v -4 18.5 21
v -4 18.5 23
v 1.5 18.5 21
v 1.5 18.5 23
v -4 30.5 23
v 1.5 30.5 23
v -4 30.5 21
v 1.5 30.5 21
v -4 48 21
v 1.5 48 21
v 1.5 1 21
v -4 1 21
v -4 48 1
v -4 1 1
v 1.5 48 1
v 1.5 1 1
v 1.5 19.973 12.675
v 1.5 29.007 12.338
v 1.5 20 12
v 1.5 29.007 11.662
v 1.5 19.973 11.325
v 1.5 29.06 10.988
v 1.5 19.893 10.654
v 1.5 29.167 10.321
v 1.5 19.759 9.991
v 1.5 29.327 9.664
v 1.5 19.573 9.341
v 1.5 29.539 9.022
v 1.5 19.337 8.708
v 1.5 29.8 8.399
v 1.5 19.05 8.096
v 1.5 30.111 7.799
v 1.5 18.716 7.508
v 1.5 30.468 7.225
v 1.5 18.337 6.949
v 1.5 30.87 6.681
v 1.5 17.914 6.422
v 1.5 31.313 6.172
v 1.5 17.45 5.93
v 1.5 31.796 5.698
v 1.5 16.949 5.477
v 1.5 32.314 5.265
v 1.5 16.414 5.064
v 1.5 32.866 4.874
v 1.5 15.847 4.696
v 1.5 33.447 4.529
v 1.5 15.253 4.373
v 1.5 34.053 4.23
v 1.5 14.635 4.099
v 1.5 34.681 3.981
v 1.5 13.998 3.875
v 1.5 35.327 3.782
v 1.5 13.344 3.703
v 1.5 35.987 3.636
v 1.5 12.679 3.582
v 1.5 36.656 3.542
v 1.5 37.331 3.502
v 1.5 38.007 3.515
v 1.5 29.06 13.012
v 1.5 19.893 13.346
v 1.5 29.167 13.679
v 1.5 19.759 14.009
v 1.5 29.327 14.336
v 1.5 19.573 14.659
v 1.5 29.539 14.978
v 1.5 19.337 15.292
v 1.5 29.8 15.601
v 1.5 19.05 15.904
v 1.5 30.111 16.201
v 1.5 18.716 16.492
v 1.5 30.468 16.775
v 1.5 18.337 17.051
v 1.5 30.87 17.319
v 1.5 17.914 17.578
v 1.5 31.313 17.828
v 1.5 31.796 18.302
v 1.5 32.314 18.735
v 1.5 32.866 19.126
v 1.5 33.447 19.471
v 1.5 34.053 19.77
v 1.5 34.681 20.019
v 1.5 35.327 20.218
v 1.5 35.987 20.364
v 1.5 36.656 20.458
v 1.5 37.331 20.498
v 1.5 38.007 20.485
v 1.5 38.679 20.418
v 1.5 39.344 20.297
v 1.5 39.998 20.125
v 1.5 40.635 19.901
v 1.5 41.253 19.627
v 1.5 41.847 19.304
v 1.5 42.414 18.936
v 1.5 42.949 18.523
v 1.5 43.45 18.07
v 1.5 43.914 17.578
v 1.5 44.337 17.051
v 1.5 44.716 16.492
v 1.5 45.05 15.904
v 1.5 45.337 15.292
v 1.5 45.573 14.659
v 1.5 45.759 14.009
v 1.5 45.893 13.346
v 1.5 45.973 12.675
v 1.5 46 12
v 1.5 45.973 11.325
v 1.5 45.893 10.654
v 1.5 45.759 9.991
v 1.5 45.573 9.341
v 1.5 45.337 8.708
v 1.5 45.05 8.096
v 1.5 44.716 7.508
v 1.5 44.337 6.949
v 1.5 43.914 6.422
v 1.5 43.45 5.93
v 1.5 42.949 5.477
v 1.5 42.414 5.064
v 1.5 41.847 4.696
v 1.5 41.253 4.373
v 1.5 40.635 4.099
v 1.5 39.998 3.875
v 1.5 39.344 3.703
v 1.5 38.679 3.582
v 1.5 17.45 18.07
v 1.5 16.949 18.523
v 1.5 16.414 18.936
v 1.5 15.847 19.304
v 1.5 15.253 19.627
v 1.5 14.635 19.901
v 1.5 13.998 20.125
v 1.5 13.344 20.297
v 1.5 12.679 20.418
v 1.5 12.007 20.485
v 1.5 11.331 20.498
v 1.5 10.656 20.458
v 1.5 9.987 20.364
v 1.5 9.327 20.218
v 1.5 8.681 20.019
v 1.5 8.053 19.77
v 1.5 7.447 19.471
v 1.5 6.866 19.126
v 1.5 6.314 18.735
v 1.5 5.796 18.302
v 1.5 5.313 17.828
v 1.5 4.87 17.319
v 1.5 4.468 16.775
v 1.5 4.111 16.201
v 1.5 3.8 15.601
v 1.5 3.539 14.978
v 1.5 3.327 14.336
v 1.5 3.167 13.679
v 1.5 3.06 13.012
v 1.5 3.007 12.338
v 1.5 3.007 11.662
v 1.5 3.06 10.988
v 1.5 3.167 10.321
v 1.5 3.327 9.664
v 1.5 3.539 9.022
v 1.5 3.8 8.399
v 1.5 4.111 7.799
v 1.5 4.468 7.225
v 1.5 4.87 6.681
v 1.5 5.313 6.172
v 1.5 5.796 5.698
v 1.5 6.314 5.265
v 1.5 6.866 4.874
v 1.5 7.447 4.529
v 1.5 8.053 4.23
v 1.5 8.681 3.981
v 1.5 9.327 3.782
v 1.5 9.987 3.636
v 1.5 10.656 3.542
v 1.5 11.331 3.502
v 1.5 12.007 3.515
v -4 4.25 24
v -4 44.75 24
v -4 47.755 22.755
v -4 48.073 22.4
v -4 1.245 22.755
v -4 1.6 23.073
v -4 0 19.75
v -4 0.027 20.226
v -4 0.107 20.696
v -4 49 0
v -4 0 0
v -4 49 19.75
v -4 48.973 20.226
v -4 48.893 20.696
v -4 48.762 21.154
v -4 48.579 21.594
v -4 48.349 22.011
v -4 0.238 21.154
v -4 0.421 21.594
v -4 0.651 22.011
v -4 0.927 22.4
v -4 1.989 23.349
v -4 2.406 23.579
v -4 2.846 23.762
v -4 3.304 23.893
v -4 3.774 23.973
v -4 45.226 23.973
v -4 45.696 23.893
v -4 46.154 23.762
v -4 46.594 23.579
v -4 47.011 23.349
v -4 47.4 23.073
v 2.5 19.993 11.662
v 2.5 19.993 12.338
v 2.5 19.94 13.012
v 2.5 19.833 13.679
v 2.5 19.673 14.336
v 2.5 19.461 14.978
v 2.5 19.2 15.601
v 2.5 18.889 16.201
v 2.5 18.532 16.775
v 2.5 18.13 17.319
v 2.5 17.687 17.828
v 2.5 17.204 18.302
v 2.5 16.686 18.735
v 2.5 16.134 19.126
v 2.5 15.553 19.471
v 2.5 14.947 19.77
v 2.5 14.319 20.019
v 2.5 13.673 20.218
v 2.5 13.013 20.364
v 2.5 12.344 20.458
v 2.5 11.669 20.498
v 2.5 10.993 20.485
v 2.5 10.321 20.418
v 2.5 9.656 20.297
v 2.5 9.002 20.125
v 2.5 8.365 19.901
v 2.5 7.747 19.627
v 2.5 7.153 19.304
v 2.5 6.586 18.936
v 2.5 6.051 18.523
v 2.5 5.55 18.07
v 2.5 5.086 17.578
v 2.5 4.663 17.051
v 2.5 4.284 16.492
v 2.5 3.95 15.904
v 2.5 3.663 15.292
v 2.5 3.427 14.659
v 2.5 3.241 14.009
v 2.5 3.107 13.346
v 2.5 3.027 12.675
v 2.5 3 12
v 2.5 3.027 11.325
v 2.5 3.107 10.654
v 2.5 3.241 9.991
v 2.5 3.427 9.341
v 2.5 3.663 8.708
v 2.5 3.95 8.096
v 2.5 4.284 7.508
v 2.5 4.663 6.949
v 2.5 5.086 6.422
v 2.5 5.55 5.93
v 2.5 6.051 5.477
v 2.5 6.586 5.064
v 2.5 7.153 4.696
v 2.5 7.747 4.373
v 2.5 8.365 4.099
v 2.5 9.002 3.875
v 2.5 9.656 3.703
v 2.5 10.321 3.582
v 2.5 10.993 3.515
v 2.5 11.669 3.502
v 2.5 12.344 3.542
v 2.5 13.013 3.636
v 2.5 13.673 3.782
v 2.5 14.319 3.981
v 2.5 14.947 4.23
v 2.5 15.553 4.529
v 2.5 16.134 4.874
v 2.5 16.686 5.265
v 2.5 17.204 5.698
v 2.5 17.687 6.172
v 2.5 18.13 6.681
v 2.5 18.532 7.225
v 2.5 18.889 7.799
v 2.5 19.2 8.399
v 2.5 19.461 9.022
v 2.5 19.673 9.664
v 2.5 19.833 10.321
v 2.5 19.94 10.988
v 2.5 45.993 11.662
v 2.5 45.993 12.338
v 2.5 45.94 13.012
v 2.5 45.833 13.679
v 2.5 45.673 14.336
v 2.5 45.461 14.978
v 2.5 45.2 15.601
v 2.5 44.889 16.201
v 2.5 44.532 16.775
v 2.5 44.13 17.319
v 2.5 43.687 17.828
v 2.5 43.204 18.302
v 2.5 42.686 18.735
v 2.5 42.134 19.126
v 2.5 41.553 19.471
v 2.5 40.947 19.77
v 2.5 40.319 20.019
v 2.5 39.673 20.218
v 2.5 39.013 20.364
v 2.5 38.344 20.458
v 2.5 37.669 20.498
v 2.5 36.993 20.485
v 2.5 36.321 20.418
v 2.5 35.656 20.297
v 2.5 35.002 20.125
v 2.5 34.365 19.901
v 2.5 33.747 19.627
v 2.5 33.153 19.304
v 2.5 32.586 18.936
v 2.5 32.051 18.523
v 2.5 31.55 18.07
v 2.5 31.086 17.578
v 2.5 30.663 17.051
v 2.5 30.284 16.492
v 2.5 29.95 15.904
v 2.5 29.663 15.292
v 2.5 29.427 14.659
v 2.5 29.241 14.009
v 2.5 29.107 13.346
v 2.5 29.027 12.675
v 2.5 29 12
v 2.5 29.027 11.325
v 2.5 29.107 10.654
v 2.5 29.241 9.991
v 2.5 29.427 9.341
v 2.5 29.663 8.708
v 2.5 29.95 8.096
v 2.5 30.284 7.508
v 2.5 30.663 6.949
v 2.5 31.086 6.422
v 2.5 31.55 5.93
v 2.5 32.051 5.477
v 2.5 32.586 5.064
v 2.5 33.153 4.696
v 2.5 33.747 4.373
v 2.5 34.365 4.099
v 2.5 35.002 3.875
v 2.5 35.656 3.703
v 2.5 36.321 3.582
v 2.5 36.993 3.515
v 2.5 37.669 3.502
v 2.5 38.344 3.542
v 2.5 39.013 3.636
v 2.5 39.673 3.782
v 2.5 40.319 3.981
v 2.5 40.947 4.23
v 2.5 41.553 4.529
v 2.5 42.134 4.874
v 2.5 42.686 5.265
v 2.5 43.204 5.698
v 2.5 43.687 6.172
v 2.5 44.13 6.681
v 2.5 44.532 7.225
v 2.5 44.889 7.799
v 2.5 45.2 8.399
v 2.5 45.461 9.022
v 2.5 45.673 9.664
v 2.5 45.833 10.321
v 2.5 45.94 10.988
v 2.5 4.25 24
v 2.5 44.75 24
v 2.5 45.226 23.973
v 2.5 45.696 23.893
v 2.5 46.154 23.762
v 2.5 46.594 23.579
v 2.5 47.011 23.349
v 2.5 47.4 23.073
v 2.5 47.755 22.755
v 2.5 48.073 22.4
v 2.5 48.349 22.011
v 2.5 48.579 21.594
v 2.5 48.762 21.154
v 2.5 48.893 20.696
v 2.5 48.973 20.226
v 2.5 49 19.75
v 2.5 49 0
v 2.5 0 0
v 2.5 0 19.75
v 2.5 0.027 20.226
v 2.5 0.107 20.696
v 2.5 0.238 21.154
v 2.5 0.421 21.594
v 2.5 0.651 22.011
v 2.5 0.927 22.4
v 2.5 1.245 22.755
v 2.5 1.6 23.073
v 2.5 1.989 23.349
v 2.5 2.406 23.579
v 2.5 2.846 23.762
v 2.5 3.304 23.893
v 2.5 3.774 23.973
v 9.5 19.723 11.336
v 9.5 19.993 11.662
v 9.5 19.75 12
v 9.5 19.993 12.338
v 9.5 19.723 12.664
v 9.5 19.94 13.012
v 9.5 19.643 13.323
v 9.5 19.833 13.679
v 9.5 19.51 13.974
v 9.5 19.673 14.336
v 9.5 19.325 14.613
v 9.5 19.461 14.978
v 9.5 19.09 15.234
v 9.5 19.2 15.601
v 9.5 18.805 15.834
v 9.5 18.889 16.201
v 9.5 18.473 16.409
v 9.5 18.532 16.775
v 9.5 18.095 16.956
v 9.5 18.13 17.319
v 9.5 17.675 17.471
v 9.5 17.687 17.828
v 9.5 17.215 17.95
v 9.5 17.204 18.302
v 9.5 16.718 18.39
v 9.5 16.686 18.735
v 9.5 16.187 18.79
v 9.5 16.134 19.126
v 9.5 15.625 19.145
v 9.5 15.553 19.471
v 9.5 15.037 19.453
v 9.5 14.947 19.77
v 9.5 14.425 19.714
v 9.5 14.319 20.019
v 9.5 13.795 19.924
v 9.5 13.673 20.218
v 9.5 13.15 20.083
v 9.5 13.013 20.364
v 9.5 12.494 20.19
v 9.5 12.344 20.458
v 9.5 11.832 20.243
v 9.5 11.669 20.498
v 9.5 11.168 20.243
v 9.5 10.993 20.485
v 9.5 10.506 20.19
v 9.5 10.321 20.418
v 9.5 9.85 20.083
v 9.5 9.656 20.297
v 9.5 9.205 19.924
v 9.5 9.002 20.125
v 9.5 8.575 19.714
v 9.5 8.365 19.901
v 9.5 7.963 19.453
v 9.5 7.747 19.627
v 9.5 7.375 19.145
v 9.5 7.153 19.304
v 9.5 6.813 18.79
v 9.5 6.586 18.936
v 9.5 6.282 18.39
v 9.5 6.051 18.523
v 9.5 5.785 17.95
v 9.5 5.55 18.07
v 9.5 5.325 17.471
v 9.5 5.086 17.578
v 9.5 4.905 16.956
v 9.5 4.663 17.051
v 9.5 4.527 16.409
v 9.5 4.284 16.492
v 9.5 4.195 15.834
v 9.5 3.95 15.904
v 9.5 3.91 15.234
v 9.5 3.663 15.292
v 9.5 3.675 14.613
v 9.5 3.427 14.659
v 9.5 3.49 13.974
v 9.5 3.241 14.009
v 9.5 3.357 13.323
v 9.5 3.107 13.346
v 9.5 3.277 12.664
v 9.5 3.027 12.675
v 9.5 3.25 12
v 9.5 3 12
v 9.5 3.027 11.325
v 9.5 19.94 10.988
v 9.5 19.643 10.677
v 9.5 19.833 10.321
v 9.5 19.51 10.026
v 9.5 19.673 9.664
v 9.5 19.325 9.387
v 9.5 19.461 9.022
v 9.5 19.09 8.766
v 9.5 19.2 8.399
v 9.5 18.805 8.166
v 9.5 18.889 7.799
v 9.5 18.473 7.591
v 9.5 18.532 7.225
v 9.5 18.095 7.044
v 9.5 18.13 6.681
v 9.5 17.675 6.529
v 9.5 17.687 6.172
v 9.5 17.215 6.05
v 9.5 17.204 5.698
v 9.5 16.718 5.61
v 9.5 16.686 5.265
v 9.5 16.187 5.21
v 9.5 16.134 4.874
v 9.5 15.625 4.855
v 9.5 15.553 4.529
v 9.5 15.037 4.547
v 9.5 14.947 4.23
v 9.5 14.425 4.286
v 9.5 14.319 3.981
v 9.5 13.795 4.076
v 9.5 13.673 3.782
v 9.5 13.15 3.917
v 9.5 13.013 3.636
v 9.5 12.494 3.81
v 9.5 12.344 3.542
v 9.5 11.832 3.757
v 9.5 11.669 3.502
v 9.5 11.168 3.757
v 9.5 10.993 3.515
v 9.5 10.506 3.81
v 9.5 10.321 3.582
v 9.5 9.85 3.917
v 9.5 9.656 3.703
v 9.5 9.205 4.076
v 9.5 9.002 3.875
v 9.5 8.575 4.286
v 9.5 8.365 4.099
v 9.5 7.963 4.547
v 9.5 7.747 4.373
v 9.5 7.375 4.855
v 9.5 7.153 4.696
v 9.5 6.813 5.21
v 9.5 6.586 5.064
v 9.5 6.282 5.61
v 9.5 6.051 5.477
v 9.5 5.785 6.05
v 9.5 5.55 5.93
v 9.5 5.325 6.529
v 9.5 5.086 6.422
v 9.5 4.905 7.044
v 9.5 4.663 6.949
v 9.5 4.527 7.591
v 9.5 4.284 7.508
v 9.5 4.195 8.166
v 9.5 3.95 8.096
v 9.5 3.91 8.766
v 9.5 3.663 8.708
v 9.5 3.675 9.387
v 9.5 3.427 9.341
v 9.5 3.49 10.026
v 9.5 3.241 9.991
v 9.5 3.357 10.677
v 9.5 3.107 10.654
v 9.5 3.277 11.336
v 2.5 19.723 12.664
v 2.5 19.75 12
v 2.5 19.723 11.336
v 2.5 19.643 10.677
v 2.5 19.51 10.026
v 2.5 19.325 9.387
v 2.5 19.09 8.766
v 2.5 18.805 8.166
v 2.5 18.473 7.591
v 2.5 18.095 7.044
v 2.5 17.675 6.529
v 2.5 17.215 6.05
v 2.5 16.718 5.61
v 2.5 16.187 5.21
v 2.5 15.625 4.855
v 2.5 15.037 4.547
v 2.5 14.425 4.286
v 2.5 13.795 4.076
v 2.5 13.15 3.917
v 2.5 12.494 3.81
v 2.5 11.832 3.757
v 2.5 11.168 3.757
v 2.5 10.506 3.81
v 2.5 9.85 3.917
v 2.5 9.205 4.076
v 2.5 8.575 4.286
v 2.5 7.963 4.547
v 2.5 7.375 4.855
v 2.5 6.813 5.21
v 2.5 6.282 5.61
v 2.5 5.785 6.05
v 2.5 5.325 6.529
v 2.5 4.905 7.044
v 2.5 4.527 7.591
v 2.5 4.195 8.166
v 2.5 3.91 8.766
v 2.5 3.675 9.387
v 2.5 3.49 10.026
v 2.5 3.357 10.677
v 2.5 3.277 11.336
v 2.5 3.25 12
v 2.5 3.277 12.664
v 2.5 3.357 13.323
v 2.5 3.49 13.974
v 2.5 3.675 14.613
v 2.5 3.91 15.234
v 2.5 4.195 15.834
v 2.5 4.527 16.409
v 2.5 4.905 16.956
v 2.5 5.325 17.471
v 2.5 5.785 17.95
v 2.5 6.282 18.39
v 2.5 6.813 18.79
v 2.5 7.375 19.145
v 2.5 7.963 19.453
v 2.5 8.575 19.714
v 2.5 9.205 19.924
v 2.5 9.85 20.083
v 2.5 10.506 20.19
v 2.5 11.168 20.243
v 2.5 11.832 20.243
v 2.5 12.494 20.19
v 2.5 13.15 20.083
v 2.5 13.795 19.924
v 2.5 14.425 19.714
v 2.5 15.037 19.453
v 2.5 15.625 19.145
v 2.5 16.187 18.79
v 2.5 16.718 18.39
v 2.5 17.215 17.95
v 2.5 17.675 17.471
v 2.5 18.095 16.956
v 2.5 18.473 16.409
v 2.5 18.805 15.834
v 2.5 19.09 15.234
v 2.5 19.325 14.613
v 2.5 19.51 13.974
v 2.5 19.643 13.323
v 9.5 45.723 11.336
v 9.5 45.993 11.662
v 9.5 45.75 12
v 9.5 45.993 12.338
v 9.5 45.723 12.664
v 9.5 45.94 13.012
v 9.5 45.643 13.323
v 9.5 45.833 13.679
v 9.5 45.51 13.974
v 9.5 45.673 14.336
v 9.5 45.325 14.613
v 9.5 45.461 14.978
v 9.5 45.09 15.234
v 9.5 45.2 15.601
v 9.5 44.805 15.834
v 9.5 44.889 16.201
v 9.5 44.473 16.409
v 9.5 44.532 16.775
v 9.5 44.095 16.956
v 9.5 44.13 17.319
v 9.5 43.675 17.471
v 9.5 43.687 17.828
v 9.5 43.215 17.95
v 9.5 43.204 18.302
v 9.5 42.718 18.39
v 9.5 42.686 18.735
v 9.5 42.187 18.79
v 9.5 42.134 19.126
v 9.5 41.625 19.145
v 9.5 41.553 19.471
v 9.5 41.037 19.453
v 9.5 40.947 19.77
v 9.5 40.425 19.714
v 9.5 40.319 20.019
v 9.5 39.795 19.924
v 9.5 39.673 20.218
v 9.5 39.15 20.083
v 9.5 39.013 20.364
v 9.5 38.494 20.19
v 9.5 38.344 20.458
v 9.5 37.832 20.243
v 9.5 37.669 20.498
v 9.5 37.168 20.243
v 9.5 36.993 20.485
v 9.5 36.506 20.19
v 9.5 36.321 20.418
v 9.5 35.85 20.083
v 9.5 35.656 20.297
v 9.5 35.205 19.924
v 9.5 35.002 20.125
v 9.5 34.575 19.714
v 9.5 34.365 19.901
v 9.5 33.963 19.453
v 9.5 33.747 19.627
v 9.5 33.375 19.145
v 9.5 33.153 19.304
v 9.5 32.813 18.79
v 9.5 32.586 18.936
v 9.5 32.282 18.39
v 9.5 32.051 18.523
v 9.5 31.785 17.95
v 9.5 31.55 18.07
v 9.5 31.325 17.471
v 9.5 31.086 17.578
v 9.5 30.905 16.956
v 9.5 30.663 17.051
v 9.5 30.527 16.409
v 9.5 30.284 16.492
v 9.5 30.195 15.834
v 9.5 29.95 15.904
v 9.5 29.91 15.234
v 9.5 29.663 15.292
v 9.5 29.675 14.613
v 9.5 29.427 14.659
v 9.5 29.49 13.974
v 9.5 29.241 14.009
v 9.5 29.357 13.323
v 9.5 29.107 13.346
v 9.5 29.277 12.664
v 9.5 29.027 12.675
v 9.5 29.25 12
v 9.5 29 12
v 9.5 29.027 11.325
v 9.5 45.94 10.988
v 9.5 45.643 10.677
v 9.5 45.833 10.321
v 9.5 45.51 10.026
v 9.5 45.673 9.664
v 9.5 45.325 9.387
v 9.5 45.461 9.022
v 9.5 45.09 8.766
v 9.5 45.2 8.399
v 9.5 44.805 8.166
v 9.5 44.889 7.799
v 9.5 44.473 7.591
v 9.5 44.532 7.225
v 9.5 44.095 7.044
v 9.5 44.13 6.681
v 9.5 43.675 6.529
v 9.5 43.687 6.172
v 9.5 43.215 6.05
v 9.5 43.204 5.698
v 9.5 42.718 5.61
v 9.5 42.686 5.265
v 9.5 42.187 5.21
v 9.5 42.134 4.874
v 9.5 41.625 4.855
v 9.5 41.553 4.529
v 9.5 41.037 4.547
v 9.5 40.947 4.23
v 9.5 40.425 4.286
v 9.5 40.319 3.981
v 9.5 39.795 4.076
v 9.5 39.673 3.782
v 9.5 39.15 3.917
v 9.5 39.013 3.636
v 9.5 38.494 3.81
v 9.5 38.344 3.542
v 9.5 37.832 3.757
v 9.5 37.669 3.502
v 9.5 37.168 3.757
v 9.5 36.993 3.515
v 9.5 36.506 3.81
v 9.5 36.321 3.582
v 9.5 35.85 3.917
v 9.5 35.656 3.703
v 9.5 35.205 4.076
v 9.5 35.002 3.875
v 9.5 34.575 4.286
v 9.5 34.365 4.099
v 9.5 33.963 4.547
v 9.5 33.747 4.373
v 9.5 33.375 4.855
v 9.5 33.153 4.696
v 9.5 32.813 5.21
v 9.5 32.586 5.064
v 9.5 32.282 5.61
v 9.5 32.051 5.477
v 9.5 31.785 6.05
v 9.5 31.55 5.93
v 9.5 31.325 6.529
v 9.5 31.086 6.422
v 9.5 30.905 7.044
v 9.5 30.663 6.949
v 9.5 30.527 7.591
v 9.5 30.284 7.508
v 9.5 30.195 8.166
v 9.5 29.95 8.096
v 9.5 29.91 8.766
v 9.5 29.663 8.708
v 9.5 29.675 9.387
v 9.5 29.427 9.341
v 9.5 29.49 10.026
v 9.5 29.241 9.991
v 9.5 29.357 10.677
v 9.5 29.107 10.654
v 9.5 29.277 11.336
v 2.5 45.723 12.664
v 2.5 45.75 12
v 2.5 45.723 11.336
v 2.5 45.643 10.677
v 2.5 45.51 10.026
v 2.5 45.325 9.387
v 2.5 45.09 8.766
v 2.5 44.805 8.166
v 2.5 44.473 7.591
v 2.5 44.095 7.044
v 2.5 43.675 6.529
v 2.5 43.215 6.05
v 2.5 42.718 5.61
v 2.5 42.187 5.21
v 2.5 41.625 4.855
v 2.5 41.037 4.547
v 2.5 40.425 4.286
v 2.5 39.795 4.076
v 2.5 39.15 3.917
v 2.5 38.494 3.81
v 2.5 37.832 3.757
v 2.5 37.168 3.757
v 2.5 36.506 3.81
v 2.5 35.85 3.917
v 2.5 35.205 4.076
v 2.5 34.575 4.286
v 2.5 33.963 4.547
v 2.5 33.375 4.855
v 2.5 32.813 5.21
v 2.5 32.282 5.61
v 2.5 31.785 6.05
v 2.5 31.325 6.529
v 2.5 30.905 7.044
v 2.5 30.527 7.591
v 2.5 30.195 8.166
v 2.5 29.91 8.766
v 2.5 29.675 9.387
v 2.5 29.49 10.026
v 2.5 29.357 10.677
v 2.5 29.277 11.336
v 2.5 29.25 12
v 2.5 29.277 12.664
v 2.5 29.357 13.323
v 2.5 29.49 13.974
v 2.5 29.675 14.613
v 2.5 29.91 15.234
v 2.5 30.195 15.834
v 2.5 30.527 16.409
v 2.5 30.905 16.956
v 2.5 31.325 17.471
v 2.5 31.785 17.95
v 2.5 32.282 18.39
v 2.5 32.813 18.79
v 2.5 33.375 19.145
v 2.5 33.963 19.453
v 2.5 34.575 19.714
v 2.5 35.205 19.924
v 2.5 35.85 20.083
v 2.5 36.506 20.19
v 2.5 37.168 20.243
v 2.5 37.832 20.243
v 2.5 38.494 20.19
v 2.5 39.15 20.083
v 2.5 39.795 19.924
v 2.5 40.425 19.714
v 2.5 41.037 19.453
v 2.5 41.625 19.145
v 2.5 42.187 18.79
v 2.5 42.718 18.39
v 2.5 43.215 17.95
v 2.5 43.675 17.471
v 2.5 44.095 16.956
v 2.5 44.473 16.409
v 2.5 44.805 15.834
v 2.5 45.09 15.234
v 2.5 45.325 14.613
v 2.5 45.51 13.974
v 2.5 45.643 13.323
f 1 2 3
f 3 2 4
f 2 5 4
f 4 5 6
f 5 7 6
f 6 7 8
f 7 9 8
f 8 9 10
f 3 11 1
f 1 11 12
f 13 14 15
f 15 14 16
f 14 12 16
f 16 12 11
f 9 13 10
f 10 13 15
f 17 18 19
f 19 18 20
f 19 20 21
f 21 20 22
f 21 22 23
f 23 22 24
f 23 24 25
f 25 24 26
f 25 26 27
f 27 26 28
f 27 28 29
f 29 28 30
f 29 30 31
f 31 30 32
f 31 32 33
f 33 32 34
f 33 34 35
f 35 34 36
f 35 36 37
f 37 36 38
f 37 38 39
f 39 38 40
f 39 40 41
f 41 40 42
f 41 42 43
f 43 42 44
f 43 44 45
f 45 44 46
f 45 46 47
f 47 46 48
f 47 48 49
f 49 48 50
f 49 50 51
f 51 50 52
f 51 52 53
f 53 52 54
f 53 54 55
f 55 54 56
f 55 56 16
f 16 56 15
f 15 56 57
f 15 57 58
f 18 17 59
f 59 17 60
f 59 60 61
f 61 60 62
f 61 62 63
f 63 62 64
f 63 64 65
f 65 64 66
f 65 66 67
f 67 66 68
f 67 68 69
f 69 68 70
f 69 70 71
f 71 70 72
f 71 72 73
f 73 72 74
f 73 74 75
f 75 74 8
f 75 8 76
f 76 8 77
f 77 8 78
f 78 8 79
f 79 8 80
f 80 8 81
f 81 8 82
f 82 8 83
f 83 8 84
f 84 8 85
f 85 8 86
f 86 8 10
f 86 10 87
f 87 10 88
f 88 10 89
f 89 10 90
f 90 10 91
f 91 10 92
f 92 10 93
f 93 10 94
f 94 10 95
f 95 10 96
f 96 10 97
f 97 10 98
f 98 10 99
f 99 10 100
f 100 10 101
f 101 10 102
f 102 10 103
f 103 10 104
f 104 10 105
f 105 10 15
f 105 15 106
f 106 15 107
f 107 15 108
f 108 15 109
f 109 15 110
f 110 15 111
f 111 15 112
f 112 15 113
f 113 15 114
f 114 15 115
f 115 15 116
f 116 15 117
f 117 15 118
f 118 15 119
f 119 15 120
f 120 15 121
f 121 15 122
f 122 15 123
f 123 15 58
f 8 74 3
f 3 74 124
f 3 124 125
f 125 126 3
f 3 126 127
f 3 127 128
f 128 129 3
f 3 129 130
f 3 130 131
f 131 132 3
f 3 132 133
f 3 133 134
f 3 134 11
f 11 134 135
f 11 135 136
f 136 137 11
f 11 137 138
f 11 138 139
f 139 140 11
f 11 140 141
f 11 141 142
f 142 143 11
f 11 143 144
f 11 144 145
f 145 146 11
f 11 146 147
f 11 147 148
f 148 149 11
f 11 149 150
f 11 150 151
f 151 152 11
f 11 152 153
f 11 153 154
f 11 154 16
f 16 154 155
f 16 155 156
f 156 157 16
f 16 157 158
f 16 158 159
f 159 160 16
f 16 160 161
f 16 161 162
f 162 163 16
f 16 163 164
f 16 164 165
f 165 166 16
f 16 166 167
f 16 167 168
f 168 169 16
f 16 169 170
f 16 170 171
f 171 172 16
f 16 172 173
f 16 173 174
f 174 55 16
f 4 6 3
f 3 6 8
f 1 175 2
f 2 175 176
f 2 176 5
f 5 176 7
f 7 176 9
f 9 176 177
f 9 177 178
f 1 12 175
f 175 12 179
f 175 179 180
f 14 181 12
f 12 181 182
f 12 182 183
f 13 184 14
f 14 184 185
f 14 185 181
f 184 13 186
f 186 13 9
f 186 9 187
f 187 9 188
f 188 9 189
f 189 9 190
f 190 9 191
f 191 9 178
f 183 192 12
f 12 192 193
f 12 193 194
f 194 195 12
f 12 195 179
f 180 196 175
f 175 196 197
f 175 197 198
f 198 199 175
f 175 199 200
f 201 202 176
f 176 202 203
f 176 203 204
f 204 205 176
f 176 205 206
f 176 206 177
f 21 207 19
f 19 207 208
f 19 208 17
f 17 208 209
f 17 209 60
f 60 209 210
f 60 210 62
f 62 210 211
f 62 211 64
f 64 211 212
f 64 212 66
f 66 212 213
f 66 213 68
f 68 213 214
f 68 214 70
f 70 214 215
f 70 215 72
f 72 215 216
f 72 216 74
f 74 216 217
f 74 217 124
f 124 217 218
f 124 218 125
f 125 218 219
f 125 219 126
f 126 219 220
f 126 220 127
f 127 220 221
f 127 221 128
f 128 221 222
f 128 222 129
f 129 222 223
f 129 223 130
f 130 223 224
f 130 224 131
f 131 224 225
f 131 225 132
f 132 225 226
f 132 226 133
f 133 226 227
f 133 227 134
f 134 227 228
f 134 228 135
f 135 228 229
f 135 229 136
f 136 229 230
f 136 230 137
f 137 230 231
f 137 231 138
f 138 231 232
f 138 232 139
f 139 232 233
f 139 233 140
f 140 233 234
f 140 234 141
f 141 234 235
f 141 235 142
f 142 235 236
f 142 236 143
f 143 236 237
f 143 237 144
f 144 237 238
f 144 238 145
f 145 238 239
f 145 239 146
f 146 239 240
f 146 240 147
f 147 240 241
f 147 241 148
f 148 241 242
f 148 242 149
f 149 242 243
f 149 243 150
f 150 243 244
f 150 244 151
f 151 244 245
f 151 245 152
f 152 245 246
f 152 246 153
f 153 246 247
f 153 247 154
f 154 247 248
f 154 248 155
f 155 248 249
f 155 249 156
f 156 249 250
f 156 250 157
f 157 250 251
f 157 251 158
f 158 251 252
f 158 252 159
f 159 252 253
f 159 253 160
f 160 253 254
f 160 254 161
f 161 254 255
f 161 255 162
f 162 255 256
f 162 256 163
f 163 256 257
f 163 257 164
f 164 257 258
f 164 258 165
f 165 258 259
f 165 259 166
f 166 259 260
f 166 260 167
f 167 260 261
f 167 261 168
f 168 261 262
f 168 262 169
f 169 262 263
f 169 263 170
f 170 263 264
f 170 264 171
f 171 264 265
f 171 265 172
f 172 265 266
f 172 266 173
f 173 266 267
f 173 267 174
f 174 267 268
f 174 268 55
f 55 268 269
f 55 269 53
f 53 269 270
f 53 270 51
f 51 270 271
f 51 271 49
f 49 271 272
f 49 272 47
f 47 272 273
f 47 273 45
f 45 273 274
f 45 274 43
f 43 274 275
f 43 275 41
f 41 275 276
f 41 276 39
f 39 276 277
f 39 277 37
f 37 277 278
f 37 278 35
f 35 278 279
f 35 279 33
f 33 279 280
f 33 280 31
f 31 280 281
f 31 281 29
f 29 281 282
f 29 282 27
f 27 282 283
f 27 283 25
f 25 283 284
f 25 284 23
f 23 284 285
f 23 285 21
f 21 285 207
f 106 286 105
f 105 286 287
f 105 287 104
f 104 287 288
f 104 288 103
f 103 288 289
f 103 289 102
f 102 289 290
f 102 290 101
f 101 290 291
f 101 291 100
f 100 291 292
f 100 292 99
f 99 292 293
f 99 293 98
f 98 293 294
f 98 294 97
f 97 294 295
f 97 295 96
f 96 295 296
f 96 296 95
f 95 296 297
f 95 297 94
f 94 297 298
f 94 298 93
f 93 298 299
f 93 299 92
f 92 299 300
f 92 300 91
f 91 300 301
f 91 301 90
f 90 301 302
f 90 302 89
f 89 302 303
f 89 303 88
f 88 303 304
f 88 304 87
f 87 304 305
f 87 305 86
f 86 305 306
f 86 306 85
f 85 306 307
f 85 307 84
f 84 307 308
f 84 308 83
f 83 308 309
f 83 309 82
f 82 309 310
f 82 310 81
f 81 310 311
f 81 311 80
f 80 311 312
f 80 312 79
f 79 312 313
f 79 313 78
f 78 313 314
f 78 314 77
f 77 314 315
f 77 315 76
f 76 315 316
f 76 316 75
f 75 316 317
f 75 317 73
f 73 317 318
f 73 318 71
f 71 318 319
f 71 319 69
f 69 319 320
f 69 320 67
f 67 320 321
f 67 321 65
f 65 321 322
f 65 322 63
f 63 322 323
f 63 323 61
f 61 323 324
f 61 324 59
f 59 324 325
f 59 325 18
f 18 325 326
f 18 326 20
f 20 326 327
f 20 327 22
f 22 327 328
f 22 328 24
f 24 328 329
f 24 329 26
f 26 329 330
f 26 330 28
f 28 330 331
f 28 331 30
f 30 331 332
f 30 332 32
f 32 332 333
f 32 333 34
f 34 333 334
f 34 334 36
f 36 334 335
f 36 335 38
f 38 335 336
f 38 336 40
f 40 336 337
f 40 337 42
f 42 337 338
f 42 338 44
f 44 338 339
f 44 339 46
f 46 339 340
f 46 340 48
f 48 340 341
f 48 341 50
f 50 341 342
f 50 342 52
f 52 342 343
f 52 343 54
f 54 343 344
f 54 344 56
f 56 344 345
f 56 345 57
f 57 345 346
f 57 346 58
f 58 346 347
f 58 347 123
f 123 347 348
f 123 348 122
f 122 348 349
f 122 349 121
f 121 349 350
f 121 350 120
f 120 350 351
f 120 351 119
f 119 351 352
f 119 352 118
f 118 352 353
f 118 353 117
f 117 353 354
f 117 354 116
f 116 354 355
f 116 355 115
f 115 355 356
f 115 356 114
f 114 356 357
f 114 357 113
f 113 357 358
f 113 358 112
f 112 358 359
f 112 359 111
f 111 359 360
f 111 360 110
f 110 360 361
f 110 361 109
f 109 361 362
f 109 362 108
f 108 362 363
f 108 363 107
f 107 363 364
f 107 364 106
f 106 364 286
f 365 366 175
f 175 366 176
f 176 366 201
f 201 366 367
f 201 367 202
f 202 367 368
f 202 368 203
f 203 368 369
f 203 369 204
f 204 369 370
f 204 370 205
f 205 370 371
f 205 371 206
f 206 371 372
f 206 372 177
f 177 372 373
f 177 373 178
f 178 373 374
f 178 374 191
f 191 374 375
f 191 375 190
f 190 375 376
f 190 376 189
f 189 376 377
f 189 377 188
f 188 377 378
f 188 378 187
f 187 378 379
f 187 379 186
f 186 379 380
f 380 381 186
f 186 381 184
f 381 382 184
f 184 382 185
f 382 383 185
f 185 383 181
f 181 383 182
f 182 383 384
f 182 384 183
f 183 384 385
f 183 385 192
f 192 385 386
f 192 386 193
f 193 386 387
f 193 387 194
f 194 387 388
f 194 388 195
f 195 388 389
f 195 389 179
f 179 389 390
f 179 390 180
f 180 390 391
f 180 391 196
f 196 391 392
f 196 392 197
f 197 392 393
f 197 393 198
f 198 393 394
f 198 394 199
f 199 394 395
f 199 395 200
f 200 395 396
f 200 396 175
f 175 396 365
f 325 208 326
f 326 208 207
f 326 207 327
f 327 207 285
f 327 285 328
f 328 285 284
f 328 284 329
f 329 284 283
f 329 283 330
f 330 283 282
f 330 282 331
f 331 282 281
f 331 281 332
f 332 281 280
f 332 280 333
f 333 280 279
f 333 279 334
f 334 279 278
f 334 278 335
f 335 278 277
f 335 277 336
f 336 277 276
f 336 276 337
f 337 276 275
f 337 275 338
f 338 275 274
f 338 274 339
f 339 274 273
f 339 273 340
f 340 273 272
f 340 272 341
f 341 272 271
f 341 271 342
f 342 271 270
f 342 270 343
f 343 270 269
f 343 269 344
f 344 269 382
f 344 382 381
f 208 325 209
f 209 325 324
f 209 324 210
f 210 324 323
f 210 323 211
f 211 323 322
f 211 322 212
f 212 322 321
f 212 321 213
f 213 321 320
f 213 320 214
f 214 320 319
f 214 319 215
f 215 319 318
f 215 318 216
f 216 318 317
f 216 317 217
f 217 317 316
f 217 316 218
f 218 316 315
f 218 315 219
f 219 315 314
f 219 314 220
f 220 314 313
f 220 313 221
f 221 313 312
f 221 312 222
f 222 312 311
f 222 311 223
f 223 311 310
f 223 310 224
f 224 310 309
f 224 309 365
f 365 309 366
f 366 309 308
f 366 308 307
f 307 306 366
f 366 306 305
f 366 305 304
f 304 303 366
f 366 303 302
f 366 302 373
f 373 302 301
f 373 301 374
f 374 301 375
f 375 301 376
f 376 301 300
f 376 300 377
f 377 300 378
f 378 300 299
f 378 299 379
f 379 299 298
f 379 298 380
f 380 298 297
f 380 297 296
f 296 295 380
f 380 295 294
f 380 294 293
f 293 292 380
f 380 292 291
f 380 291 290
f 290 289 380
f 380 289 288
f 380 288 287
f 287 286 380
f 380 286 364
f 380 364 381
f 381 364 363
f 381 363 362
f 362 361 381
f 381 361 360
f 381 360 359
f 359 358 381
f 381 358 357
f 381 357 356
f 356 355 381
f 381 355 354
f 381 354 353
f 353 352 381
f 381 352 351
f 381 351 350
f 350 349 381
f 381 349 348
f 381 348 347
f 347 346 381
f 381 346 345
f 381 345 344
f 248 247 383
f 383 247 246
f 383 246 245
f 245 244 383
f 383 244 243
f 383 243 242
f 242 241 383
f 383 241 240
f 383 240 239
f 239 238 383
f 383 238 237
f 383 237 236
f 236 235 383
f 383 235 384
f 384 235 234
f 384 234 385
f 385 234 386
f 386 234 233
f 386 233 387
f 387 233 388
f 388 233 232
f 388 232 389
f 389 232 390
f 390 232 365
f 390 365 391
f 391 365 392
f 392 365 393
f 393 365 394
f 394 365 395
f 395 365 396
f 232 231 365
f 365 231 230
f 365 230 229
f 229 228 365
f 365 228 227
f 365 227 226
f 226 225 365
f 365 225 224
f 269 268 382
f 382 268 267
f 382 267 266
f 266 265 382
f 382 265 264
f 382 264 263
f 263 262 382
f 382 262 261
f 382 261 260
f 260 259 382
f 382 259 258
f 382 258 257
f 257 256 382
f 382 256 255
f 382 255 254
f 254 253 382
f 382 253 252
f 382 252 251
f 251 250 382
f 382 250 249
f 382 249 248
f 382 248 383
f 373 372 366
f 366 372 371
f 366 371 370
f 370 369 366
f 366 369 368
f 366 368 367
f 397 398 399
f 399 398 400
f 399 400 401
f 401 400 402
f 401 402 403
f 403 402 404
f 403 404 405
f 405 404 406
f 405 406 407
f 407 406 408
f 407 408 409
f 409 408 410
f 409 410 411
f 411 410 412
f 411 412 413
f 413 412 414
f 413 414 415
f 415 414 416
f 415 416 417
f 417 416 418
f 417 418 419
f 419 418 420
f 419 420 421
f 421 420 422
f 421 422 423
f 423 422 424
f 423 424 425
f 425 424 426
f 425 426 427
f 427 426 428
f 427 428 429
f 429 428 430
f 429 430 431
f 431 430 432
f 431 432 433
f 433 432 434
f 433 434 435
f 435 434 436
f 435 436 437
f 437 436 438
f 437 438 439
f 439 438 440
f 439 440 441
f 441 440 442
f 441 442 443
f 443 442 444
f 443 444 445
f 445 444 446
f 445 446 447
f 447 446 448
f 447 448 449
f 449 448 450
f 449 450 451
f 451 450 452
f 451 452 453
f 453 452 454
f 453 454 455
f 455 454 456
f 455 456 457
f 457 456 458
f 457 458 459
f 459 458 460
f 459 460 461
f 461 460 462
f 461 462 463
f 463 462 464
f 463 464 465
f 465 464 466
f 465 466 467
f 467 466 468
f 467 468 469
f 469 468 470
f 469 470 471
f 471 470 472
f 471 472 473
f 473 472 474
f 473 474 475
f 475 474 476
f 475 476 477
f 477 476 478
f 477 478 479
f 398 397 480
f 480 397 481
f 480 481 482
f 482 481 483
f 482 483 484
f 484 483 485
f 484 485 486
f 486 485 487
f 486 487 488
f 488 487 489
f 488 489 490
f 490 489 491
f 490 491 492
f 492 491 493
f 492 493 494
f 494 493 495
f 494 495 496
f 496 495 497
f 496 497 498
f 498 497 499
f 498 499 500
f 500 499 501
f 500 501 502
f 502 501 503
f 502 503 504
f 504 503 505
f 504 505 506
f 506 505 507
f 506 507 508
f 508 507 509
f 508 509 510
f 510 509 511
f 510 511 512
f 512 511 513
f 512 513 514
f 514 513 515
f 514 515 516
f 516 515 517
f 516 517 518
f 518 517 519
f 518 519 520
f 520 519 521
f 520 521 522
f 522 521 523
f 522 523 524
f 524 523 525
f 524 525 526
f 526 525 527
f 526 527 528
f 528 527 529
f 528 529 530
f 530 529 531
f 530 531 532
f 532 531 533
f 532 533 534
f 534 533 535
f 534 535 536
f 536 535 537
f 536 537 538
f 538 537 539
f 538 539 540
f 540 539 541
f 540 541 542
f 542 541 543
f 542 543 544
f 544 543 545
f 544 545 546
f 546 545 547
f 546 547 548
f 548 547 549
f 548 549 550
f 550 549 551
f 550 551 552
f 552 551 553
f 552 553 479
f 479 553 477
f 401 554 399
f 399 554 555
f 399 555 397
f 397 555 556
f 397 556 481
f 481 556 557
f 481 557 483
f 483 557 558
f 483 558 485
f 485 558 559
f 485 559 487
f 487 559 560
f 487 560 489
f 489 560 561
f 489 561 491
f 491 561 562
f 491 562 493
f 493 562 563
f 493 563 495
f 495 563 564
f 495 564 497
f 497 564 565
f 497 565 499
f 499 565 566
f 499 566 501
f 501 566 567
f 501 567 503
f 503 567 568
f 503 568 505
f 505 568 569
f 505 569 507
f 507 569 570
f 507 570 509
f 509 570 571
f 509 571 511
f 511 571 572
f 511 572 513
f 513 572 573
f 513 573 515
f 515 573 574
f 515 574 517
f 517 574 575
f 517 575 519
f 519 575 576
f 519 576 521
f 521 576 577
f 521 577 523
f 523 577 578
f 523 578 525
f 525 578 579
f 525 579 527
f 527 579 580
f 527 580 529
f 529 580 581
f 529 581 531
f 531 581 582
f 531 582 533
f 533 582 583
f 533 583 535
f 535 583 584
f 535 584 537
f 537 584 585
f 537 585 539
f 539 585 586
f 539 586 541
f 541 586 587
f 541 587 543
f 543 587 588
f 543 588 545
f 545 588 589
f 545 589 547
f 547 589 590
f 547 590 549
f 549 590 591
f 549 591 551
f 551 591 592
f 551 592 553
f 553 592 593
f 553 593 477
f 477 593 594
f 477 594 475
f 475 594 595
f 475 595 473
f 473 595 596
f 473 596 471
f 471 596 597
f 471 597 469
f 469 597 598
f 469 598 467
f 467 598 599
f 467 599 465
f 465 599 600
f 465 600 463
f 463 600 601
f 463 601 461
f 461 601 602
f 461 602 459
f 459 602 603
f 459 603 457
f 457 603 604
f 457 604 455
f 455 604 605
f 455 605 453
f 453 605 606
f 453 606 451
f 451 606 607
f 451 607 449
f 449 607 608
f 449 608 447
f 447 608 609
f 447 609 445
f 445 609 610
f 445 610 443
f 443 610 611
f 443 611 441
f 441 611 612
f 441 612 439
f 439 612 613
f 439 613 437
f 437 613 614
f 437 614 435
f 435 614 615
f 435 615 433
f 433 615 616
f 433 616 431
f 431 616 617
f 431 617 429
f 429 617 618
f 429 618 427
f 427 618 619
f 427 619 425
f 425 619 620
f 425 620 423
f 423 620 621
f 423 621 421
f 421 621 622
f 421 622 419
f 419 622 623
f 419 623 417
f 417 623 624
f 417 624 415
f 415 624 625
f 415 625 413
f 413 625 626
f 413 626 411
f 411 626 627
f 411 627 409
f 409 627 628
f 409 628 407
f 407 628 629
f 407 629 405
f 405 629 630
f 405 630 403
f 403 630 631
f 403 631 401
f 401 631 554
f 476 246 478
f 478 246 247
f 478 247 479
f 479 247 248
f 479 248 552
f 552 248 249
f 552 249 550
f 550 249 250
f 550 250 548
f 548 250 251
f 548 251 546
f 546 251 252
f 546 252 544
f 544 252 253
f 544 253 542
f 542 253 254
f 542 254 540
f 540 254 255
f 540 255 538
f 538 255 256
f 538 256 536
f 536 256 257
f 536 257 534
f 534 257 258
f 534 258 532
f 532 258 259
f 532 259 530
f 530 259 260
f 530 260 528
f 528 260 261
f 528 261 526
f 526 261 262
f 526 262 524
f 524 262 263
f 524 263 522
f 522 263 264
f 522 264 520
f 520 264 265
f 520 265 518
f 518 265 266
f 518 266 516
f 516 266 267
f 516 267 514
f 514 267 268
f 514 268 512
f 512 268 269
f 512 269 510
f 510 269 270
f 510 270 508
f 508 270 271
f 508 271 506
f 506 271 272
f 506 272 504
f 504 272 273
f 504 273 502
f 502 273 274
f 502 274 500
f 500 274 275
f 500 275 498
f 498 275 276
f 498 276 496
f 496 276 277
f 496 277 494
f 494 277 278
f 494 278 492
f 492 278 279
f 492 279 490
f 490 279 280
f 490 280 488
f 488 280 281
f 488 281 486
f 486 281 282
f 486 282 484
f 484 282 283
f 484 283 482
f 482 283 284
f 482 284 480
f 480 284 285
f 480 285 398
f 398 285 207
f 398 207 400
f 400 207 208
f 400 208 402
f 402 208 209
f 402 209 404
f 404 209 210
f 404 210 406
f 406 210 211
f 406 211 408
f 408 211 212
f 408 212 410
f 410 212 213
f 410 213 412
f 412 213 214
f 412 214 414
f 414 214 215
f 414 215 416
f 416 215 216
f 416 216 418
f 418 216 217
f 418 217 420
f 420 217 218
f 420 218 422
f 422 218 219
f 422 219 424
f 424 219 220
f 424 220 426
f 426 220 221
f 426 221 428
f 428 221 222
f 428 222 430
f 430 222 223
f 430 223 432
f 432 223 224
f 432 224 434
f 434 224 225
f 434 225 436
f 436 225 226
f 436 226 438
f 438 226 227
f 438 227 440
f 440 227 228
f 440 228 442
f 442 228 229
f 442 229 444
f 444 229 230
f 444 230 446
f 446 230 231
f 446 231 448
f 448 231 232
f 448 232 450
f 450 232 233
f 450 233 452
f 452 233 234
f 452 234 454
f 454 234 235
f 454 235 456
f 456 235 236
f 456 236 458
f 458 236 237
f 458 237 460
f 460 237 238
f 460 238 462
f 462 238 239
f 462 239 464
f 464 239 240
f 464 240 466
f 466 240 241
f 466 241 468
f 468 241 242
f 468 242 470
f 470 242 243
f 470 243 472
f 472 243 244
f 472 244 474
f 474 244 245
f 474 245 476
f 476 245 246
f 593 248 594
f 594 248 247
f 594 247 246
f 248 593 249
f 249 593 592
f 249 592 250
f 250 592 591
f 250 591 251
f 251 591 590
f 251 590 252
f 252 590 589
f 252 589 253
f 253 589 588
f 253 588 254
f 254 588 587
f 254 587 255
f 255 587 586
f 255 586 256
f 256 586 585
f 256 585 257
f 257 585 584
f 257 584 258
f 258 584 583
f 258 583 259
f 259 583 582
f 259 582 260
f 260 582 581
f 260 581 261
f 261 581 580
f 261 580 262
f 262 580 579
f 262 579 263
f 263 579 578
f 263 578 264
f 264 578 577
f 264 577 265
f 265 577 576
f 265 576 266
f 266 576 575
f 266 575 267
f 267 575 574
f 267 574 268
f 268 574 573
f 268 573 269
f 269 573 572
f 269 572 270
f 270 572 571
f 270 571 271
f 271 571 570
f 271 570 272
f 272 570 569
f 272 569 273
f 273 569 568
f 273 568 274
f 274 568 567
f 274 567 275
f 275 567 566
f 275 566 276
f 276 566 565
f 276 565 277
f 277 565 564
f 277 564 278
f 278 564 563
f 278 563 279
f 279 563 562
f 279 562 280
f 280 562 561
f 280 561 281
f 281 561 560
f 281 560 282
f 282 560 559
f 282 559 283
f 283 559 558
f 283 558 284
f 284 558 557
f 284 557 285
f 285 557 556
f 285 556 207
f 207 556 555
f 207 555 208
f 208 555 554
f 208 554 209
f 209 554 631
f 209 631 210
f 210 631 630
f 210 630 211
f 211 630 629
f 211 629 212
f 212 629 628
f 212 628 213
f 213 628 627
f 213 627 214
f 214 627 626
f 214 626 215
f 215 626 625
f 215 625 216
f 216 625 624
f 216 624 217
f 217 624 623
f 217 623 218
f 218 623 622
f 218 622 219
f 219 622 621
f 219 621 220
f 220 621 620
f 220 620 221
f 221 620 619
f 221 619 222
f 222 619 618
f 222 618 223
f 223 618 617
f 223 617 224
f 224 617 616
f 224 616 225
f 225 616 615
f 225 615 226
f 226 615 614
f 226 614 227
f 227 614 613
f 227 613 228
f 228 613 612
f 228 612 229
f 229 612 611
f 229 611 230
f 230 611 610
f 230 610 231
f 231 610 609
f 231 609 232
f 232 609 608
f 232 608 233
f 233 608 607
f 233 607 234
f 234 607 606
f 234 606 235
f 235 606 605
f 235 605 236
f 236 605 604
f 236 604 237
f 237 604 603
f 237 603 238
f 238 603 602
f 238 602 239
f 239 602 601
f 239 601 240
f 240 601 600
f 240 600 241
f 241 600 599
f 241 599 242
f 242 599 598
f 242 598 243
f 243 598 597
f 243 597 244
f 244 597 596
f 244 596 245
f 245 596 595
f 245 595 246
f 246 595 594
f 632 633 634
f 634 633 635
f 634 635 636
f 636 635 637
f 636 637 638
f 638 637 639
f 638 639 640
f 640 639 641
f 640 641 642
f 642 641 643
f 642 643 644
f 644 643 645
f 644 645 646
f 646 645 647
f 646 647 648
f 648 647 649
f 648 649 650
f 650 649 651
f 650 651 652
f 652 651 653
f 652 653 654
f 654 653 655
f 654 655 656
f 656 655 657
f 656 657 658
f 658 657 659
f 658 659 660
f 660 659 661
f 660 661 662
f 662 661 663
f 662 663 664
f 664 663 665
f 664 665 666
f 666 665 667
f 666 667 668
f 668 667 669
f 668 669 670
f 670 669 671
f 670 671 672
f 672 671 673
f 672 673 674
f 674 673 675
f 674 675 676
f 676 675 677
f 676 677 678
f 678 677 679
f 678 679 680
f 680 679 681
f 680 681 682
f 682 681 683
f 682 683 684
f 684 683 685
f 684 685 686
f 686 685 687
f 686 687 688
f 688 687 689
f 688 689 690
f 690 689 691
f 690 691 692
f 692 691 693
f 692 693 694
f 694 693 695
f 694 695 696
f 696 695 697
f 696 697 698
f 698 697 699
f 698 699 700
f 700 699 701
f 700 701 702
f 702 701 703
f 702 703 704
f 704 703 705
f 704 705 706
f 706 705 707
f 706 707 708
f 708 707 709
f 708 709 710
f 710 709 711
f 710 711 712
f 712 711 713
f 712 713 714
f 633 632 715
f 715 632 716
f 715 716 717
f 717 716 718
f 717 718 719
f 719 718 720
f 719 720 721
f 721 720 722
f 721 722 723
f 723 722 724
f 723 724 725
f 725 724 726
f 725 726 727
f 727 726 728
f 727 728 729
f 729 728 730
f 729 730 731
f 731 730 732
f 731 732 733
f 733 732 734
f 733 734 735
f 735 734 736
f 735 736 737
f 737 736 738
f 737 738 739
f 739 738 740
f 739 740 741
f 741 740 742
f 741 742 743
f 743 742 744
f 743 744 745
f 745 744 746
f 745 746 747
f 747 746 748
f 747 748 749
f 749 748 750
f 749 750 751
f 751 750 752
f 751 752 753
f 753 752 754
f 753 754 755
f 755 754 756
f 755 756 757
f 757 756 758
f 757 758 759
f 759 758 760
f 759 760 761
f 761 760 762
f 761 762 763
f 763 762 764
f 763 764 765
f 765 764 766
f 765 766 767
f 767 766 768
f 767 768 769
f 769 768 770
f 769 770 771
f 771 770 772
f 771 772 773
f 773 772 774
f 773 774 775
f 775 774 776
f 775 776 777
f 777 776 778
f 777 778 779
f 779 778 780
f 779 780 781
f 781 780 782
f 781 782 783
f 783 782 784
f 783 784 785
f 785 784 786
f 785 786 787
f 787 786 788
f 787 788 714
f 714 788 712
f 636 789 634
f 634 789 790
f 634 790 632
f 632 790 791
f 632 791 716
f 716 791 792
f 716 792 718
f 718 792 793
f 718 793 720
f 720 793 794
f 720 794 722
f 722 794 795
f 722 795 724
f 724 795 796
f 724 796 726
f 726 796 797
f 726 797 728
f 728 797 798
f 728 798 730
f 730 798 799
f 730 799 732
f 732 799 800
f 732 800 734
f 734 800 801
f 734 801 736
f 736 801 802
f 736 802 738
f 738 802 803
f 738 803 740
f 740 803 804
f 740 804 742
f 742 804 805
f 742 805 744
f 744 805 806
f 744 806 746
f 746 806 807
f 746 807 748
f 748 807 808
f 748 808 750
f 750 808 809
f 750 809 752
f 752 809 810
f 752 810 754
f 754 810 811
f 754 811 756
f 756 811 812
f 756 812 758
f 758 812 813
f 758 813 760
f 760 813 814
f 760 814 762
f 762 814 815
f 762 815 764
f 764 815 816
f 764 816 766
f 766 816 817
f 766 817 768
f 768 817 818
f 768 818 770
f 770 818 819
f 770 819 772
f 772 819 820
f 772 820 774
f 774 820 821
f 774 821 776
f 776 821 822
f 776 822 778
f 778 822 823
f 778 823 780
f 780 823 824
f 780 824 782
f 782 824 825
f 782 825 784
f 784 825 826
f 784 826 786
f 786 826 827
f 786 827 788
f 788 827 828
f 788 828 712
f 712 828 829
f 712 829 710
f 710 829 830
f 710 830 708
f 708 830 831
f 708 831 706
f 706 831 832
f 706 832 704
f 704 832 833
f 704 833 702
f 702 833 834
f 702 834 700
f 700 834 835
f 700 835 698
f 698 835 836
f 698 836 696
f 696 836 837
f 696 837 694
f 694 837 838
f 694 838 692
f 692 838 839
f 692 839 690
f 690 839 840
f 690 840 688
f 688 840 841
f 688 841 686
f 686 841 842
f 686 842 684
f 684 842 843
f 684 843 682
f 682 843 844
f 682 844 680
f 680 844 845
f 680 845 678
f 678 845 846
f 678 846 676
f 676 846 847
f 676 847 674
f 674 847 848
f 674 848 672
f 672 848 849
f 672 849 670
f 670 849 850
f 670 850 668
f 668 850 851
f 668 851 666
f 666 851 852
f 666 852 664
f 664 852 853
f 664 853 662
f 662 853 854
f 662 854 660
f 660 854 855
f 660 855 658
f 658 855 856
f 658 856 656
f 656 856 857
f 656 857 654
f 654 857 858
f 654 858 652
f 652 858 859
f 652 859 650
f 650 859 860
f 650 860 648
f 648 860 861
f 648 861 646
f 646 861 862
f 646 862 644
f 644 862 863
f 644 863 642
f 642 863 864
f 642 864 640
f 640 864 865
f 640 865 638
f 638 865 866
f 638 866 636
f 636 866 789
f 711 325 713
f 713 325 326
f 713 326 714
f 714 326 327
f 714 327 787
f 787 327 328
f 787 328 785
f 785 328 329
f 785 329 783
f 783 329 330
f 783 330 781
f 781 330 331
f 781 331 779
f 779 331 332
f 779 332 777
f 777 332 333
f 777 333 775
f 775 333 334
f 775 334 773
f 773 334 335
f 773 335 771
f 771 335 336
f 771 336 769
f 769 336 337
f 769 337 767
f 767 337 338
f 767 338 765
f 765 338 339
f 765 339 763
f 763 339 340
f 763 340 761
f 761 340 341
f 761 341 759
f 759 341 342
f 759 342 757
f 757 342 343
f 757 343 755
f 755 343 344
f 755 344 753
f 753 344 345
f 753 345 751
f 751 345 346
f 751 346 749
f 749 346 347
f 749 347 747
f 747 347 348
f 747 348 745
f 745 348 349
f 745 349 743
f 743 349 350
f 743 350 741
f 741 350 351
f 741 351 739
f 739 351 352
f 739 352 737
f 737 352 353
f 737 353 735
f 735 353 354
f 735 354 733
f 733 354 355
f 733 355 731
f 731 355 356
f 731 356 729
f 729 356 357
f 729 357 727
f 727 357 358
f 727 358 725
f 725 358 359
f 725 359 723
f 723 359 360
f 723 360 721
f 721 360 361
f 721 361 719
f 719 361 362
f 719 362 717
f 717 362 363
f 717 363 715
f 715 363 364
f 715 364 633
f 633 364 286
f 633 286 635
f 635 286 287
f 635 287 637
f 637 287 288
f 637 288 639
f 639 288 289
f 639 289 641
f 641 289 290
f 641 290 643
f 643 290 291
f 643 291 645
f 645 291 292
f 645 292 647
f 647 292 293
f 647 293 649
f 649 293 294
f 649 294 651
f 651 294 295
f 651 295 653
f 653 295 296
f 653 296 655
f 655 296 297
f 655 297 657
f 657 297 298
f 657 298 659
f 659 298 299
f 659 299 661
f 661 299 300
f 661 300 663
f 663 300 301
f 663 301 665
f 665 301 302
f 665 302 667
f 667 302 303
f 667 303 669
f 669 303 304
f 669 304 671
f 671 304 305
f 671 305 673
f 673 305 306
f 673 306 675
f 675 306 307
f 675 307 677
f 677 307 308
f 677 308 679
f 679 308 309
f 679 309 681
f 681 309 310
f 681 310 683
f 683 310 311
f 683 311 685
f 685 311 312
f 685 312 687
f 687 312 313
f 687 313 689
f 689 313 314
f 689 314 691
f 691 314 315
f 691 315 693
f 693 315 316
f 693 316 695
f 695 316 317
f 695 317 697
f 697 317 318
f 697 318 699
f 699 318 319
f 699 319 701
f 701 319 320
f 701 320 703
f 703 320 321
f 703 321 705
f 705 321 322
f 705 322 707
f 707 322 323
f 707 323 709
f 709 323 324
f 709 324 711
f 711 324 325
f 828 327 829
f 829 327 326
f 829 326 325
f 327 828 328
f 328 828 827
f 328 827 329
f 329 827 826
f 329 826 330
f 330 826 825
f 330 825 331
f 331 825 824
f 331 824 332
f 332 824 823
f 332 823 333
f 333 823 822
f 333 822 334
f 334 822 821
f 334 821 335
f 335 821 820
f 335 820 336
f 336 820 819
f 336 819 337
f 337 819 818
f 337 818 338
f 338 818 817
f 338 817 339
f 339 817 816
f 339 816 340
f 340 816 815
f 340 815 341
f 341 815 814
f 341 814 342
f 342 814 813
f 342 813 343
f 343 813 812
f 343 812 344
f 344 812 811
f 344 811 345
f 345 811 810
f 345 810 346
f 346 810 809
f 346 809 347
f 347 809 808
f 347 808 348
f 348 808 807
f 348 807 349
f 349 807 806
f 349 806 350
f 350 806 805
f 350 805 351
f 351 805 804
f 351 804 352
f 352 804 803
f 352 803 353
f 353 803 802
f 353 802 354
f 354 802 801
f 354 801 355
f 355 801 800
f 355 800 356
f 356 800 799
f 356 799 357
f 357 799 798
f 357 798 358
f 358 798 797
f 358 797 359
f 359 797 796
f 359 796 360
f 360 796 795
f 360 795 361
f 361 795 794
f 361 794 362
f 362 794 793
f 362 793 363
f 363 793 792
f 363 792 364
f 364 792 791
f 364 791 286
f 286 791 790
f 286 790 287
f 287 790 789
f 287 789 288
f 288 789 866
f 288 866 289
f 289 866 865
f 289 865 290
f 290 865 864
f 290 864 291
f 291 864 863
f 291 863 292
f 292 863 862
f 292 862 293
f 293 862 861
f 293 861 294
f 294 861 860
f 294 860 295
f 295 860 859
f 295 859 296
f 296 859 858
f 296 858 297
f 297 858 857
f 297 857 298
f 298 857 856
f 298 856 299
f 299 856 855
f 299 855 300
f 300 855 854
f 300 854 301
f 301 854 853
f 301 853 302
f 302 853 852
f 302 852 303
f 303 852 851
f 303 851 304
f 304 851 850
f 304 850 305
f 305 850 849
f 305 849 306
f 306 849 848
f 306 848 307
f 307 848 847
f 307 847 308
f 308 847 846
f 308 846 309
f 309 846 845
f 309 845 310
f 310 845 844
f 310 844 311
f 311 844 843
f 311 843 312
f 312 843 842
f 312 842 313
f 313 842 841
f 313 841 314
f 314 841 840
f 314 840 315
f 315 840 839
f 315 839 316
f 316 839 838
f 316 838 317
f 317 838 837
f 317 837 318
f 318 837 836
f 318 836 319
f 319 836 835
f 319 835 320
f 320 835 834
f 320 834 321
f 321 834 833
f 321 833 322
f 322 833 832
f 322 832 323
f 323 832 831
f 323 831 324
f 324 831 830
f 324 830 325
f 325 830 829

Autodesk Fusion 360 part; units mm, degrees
sketch "Sketch1" plane through (0, 0, 0) normal (1, 0, 0) x (0, 1, 0)
  line L0 (0, 0) -> (49, 0)
  line L1 (49, 0) -> (49, 19.75)
  line L2 (44.75, 24) -> (4.25, 24)
  line L3 (0, 19.75) -> (0, 0)
  arc A0 (49, 19.75) -> (44.75, 24) centre (44.75, 19.75) ccw
  arc A1 (49, 19.75) -> (44.75, 24) centre (44.75, 19.75) ccw
  arc A2 (4.25, 24) -> (0, 19.75) centre (4.25, 19.75) ccw
  circle A3 centre (11.5, 12) radius 8.5
  circle A4 centre (37.5, 12) radius 8.5
  dimension "d1" = 49
  dimension "d11" = 17
  dimension "d12" = 17
  dimension "d13" = 11.5
  dimension "d14" = 11.5
  dimension "d16" = 12
  dimension "d17" = 12
extrude "Extrude1" add sketch "Sketch1" along normal blind 2.5 makes body 1
sketch "Sketch2" plane through (2.5, 0, 0) normal (1, 0, 0) x (0, 1, 0)
  circle A0 centre (37.5, 12) radius 8.5
  circle A1 centre (11.5, 12) radius 8.5
  arc A2 (4.25, 24) -> (0, 19.75) centre (4.25, 19.75) ccw
  line L0 (0, 19.75) -> (0, 0)
  line L1 (0, 0) -> (49, 0)
  line L2 (49, 0) -> (49, 19.75)
  arc A3 (49, 19.75) -> (44.75, 24) centre (44.75, 19.75) ccw
  line L3 (44.75, 24) -> (4.25, 24)
  circle A4 centre (11.5, 12) radius 8.5
extrude "Extrude2" add sketch "Sketch2" along normal blind 12 separate body contours A1 A4 makes body 2
sketch "Sketch3" plane through (2.5, 0, 0) normal (1, 0, 0) x (0, 1, 0)
  circle A0 centre (37.5, 12) radius 8.5
  circle A1 centre (11.5, 12) radius 8.5
  arc A2 (4.25, 24) -> (0, 19.75) centre (4.25, 19.75) ccw
  line L0 (0, 19.75) -> (0, 0)
  line L1 (0, 0) -> (49, 0)
  line L2 (49, 0) -> (49, 19.75)
  arc A3 (49, 19.75) -> (44.75, 24) centre (44.75, 19.75) ccw
  line L3 (44.75, 24) -> (4.25, 24)
  circle A4 centre (37.5, 12) radius 8.5
extrude "Extrude3" add sketch "Sketch3" along normal blind 12 separate body contours A0 A4 makes body 3
hole "Hole1" at (14.5, 11.5, 12) direction (-1, 0, 0) diameter 16.5 depth 15 tip angle 118 bodies 2
hole "Hole2" at (14.5, 37.5, 12) direction (-1, 0, 0) diameter 16.5 depth 15 tip angle 118 bodies 3
extrude "Extrude4" add 1 faces at (0, 20.7971, 1.2377) along direction (-1, 0, 0) blind 3.5 on bodies 1 bodies 1
extrude "Extrude5" add 1 faces at (-3.5, 20.7971, 1.2377) along direction (-1, 0, 0) blind 0.5 on bodies 1 bodies 1
sketch "Sketch4" plane through (-4, 0, 0) normal (-1, 0, 0) x (0, -1, 0)
  circle A0 centre (-37.5, 12) radius 8.5
  circle A1 centre (-11.5, 12) radius 8.5
  arc A2 (0, 19.75) -> (-4.25, 24) centre (-4.25, 19.75) ccw
  line L0 (-4.25, 24) -> (-44.75, 24)
  arc A3 (-44.75, 24) -> (-49, 19.75) centre (-44.75, 19.75) ccw
  line L1 (-49, 19.75) -> (-49, 0)
  line L2 (-49, 0) -> (0, 0)
  line L3 (0, 0) -> (0, 19.75)
  line L4 (-48, 1) -> (-1, 1)
  line L5 (-1, 1) -> (-1, 21)
  line L6 (-1, 21) -> (-48, 21)
  line L7 (-48, 21) -> (-48, 1)
  dimension "d34" = 47
  dimension "d35" = 20
extrude "Extrude6" cut sketch "Sketch4" against normal blind 5.5 contours L4 L5 L6 L7 bodies 1
sketch "Sketch5" plane through (-4, 0, 0) normal (-1, 0, 0) x (0, -1, 0)
  line L0 (-1, 1) -> (-48, 1)
  line L1 (-48, 1) -> (-48, 21)
  line L2 (-48, 21) -> (-1, 21)
  line L3 (-1, 21) -> (-1, 1)
  arc A0 (0, 19.75) -> (-4.25, 24) centre (-4.25, 19.75) ccw
  line L4 (-4.25, 24) -> (-44.75, 24)
  arc A1 (-44.75, 24) -> (-49, 19.75) centre (-44.75, 19.75) ccw
  line L5 (-49, 19.75) -> (-49, 0)
  line L6 (-49, 0) -> (0, 0)
  line L7 (0, 0) -> (0, 19.75)
  line L8 (-30.5, 23) -> (-18.5, 23)
  line L9 (-18.5, 23) -> (-18.5, 21)
  line L10 (-18.5, 21) -> (-30.5, 21)
  line L11 (-30.5, 21) -> (-30.5, 23)
  dimension "d38" = 12
  dimension "d39" = 2
  dimension "d40" = 18.5
extrude "Extrude7" cut sketch "Sketch5" against normal blind 5.5 contours L2 L8 L9 L10 L11 bodies 1
extrude "Extrude8" cut 1 faces at (14.5, 44.9942, 8.391) along direction (-1, 0, 0) blind 5 on bodies 3 bodies 3
extrude "Extrude9" cut 1 faces at (14.5, 9.6491, 20.1094) along direction (-1, 0, 0) blind 5 on bodies 2 bodies 2
